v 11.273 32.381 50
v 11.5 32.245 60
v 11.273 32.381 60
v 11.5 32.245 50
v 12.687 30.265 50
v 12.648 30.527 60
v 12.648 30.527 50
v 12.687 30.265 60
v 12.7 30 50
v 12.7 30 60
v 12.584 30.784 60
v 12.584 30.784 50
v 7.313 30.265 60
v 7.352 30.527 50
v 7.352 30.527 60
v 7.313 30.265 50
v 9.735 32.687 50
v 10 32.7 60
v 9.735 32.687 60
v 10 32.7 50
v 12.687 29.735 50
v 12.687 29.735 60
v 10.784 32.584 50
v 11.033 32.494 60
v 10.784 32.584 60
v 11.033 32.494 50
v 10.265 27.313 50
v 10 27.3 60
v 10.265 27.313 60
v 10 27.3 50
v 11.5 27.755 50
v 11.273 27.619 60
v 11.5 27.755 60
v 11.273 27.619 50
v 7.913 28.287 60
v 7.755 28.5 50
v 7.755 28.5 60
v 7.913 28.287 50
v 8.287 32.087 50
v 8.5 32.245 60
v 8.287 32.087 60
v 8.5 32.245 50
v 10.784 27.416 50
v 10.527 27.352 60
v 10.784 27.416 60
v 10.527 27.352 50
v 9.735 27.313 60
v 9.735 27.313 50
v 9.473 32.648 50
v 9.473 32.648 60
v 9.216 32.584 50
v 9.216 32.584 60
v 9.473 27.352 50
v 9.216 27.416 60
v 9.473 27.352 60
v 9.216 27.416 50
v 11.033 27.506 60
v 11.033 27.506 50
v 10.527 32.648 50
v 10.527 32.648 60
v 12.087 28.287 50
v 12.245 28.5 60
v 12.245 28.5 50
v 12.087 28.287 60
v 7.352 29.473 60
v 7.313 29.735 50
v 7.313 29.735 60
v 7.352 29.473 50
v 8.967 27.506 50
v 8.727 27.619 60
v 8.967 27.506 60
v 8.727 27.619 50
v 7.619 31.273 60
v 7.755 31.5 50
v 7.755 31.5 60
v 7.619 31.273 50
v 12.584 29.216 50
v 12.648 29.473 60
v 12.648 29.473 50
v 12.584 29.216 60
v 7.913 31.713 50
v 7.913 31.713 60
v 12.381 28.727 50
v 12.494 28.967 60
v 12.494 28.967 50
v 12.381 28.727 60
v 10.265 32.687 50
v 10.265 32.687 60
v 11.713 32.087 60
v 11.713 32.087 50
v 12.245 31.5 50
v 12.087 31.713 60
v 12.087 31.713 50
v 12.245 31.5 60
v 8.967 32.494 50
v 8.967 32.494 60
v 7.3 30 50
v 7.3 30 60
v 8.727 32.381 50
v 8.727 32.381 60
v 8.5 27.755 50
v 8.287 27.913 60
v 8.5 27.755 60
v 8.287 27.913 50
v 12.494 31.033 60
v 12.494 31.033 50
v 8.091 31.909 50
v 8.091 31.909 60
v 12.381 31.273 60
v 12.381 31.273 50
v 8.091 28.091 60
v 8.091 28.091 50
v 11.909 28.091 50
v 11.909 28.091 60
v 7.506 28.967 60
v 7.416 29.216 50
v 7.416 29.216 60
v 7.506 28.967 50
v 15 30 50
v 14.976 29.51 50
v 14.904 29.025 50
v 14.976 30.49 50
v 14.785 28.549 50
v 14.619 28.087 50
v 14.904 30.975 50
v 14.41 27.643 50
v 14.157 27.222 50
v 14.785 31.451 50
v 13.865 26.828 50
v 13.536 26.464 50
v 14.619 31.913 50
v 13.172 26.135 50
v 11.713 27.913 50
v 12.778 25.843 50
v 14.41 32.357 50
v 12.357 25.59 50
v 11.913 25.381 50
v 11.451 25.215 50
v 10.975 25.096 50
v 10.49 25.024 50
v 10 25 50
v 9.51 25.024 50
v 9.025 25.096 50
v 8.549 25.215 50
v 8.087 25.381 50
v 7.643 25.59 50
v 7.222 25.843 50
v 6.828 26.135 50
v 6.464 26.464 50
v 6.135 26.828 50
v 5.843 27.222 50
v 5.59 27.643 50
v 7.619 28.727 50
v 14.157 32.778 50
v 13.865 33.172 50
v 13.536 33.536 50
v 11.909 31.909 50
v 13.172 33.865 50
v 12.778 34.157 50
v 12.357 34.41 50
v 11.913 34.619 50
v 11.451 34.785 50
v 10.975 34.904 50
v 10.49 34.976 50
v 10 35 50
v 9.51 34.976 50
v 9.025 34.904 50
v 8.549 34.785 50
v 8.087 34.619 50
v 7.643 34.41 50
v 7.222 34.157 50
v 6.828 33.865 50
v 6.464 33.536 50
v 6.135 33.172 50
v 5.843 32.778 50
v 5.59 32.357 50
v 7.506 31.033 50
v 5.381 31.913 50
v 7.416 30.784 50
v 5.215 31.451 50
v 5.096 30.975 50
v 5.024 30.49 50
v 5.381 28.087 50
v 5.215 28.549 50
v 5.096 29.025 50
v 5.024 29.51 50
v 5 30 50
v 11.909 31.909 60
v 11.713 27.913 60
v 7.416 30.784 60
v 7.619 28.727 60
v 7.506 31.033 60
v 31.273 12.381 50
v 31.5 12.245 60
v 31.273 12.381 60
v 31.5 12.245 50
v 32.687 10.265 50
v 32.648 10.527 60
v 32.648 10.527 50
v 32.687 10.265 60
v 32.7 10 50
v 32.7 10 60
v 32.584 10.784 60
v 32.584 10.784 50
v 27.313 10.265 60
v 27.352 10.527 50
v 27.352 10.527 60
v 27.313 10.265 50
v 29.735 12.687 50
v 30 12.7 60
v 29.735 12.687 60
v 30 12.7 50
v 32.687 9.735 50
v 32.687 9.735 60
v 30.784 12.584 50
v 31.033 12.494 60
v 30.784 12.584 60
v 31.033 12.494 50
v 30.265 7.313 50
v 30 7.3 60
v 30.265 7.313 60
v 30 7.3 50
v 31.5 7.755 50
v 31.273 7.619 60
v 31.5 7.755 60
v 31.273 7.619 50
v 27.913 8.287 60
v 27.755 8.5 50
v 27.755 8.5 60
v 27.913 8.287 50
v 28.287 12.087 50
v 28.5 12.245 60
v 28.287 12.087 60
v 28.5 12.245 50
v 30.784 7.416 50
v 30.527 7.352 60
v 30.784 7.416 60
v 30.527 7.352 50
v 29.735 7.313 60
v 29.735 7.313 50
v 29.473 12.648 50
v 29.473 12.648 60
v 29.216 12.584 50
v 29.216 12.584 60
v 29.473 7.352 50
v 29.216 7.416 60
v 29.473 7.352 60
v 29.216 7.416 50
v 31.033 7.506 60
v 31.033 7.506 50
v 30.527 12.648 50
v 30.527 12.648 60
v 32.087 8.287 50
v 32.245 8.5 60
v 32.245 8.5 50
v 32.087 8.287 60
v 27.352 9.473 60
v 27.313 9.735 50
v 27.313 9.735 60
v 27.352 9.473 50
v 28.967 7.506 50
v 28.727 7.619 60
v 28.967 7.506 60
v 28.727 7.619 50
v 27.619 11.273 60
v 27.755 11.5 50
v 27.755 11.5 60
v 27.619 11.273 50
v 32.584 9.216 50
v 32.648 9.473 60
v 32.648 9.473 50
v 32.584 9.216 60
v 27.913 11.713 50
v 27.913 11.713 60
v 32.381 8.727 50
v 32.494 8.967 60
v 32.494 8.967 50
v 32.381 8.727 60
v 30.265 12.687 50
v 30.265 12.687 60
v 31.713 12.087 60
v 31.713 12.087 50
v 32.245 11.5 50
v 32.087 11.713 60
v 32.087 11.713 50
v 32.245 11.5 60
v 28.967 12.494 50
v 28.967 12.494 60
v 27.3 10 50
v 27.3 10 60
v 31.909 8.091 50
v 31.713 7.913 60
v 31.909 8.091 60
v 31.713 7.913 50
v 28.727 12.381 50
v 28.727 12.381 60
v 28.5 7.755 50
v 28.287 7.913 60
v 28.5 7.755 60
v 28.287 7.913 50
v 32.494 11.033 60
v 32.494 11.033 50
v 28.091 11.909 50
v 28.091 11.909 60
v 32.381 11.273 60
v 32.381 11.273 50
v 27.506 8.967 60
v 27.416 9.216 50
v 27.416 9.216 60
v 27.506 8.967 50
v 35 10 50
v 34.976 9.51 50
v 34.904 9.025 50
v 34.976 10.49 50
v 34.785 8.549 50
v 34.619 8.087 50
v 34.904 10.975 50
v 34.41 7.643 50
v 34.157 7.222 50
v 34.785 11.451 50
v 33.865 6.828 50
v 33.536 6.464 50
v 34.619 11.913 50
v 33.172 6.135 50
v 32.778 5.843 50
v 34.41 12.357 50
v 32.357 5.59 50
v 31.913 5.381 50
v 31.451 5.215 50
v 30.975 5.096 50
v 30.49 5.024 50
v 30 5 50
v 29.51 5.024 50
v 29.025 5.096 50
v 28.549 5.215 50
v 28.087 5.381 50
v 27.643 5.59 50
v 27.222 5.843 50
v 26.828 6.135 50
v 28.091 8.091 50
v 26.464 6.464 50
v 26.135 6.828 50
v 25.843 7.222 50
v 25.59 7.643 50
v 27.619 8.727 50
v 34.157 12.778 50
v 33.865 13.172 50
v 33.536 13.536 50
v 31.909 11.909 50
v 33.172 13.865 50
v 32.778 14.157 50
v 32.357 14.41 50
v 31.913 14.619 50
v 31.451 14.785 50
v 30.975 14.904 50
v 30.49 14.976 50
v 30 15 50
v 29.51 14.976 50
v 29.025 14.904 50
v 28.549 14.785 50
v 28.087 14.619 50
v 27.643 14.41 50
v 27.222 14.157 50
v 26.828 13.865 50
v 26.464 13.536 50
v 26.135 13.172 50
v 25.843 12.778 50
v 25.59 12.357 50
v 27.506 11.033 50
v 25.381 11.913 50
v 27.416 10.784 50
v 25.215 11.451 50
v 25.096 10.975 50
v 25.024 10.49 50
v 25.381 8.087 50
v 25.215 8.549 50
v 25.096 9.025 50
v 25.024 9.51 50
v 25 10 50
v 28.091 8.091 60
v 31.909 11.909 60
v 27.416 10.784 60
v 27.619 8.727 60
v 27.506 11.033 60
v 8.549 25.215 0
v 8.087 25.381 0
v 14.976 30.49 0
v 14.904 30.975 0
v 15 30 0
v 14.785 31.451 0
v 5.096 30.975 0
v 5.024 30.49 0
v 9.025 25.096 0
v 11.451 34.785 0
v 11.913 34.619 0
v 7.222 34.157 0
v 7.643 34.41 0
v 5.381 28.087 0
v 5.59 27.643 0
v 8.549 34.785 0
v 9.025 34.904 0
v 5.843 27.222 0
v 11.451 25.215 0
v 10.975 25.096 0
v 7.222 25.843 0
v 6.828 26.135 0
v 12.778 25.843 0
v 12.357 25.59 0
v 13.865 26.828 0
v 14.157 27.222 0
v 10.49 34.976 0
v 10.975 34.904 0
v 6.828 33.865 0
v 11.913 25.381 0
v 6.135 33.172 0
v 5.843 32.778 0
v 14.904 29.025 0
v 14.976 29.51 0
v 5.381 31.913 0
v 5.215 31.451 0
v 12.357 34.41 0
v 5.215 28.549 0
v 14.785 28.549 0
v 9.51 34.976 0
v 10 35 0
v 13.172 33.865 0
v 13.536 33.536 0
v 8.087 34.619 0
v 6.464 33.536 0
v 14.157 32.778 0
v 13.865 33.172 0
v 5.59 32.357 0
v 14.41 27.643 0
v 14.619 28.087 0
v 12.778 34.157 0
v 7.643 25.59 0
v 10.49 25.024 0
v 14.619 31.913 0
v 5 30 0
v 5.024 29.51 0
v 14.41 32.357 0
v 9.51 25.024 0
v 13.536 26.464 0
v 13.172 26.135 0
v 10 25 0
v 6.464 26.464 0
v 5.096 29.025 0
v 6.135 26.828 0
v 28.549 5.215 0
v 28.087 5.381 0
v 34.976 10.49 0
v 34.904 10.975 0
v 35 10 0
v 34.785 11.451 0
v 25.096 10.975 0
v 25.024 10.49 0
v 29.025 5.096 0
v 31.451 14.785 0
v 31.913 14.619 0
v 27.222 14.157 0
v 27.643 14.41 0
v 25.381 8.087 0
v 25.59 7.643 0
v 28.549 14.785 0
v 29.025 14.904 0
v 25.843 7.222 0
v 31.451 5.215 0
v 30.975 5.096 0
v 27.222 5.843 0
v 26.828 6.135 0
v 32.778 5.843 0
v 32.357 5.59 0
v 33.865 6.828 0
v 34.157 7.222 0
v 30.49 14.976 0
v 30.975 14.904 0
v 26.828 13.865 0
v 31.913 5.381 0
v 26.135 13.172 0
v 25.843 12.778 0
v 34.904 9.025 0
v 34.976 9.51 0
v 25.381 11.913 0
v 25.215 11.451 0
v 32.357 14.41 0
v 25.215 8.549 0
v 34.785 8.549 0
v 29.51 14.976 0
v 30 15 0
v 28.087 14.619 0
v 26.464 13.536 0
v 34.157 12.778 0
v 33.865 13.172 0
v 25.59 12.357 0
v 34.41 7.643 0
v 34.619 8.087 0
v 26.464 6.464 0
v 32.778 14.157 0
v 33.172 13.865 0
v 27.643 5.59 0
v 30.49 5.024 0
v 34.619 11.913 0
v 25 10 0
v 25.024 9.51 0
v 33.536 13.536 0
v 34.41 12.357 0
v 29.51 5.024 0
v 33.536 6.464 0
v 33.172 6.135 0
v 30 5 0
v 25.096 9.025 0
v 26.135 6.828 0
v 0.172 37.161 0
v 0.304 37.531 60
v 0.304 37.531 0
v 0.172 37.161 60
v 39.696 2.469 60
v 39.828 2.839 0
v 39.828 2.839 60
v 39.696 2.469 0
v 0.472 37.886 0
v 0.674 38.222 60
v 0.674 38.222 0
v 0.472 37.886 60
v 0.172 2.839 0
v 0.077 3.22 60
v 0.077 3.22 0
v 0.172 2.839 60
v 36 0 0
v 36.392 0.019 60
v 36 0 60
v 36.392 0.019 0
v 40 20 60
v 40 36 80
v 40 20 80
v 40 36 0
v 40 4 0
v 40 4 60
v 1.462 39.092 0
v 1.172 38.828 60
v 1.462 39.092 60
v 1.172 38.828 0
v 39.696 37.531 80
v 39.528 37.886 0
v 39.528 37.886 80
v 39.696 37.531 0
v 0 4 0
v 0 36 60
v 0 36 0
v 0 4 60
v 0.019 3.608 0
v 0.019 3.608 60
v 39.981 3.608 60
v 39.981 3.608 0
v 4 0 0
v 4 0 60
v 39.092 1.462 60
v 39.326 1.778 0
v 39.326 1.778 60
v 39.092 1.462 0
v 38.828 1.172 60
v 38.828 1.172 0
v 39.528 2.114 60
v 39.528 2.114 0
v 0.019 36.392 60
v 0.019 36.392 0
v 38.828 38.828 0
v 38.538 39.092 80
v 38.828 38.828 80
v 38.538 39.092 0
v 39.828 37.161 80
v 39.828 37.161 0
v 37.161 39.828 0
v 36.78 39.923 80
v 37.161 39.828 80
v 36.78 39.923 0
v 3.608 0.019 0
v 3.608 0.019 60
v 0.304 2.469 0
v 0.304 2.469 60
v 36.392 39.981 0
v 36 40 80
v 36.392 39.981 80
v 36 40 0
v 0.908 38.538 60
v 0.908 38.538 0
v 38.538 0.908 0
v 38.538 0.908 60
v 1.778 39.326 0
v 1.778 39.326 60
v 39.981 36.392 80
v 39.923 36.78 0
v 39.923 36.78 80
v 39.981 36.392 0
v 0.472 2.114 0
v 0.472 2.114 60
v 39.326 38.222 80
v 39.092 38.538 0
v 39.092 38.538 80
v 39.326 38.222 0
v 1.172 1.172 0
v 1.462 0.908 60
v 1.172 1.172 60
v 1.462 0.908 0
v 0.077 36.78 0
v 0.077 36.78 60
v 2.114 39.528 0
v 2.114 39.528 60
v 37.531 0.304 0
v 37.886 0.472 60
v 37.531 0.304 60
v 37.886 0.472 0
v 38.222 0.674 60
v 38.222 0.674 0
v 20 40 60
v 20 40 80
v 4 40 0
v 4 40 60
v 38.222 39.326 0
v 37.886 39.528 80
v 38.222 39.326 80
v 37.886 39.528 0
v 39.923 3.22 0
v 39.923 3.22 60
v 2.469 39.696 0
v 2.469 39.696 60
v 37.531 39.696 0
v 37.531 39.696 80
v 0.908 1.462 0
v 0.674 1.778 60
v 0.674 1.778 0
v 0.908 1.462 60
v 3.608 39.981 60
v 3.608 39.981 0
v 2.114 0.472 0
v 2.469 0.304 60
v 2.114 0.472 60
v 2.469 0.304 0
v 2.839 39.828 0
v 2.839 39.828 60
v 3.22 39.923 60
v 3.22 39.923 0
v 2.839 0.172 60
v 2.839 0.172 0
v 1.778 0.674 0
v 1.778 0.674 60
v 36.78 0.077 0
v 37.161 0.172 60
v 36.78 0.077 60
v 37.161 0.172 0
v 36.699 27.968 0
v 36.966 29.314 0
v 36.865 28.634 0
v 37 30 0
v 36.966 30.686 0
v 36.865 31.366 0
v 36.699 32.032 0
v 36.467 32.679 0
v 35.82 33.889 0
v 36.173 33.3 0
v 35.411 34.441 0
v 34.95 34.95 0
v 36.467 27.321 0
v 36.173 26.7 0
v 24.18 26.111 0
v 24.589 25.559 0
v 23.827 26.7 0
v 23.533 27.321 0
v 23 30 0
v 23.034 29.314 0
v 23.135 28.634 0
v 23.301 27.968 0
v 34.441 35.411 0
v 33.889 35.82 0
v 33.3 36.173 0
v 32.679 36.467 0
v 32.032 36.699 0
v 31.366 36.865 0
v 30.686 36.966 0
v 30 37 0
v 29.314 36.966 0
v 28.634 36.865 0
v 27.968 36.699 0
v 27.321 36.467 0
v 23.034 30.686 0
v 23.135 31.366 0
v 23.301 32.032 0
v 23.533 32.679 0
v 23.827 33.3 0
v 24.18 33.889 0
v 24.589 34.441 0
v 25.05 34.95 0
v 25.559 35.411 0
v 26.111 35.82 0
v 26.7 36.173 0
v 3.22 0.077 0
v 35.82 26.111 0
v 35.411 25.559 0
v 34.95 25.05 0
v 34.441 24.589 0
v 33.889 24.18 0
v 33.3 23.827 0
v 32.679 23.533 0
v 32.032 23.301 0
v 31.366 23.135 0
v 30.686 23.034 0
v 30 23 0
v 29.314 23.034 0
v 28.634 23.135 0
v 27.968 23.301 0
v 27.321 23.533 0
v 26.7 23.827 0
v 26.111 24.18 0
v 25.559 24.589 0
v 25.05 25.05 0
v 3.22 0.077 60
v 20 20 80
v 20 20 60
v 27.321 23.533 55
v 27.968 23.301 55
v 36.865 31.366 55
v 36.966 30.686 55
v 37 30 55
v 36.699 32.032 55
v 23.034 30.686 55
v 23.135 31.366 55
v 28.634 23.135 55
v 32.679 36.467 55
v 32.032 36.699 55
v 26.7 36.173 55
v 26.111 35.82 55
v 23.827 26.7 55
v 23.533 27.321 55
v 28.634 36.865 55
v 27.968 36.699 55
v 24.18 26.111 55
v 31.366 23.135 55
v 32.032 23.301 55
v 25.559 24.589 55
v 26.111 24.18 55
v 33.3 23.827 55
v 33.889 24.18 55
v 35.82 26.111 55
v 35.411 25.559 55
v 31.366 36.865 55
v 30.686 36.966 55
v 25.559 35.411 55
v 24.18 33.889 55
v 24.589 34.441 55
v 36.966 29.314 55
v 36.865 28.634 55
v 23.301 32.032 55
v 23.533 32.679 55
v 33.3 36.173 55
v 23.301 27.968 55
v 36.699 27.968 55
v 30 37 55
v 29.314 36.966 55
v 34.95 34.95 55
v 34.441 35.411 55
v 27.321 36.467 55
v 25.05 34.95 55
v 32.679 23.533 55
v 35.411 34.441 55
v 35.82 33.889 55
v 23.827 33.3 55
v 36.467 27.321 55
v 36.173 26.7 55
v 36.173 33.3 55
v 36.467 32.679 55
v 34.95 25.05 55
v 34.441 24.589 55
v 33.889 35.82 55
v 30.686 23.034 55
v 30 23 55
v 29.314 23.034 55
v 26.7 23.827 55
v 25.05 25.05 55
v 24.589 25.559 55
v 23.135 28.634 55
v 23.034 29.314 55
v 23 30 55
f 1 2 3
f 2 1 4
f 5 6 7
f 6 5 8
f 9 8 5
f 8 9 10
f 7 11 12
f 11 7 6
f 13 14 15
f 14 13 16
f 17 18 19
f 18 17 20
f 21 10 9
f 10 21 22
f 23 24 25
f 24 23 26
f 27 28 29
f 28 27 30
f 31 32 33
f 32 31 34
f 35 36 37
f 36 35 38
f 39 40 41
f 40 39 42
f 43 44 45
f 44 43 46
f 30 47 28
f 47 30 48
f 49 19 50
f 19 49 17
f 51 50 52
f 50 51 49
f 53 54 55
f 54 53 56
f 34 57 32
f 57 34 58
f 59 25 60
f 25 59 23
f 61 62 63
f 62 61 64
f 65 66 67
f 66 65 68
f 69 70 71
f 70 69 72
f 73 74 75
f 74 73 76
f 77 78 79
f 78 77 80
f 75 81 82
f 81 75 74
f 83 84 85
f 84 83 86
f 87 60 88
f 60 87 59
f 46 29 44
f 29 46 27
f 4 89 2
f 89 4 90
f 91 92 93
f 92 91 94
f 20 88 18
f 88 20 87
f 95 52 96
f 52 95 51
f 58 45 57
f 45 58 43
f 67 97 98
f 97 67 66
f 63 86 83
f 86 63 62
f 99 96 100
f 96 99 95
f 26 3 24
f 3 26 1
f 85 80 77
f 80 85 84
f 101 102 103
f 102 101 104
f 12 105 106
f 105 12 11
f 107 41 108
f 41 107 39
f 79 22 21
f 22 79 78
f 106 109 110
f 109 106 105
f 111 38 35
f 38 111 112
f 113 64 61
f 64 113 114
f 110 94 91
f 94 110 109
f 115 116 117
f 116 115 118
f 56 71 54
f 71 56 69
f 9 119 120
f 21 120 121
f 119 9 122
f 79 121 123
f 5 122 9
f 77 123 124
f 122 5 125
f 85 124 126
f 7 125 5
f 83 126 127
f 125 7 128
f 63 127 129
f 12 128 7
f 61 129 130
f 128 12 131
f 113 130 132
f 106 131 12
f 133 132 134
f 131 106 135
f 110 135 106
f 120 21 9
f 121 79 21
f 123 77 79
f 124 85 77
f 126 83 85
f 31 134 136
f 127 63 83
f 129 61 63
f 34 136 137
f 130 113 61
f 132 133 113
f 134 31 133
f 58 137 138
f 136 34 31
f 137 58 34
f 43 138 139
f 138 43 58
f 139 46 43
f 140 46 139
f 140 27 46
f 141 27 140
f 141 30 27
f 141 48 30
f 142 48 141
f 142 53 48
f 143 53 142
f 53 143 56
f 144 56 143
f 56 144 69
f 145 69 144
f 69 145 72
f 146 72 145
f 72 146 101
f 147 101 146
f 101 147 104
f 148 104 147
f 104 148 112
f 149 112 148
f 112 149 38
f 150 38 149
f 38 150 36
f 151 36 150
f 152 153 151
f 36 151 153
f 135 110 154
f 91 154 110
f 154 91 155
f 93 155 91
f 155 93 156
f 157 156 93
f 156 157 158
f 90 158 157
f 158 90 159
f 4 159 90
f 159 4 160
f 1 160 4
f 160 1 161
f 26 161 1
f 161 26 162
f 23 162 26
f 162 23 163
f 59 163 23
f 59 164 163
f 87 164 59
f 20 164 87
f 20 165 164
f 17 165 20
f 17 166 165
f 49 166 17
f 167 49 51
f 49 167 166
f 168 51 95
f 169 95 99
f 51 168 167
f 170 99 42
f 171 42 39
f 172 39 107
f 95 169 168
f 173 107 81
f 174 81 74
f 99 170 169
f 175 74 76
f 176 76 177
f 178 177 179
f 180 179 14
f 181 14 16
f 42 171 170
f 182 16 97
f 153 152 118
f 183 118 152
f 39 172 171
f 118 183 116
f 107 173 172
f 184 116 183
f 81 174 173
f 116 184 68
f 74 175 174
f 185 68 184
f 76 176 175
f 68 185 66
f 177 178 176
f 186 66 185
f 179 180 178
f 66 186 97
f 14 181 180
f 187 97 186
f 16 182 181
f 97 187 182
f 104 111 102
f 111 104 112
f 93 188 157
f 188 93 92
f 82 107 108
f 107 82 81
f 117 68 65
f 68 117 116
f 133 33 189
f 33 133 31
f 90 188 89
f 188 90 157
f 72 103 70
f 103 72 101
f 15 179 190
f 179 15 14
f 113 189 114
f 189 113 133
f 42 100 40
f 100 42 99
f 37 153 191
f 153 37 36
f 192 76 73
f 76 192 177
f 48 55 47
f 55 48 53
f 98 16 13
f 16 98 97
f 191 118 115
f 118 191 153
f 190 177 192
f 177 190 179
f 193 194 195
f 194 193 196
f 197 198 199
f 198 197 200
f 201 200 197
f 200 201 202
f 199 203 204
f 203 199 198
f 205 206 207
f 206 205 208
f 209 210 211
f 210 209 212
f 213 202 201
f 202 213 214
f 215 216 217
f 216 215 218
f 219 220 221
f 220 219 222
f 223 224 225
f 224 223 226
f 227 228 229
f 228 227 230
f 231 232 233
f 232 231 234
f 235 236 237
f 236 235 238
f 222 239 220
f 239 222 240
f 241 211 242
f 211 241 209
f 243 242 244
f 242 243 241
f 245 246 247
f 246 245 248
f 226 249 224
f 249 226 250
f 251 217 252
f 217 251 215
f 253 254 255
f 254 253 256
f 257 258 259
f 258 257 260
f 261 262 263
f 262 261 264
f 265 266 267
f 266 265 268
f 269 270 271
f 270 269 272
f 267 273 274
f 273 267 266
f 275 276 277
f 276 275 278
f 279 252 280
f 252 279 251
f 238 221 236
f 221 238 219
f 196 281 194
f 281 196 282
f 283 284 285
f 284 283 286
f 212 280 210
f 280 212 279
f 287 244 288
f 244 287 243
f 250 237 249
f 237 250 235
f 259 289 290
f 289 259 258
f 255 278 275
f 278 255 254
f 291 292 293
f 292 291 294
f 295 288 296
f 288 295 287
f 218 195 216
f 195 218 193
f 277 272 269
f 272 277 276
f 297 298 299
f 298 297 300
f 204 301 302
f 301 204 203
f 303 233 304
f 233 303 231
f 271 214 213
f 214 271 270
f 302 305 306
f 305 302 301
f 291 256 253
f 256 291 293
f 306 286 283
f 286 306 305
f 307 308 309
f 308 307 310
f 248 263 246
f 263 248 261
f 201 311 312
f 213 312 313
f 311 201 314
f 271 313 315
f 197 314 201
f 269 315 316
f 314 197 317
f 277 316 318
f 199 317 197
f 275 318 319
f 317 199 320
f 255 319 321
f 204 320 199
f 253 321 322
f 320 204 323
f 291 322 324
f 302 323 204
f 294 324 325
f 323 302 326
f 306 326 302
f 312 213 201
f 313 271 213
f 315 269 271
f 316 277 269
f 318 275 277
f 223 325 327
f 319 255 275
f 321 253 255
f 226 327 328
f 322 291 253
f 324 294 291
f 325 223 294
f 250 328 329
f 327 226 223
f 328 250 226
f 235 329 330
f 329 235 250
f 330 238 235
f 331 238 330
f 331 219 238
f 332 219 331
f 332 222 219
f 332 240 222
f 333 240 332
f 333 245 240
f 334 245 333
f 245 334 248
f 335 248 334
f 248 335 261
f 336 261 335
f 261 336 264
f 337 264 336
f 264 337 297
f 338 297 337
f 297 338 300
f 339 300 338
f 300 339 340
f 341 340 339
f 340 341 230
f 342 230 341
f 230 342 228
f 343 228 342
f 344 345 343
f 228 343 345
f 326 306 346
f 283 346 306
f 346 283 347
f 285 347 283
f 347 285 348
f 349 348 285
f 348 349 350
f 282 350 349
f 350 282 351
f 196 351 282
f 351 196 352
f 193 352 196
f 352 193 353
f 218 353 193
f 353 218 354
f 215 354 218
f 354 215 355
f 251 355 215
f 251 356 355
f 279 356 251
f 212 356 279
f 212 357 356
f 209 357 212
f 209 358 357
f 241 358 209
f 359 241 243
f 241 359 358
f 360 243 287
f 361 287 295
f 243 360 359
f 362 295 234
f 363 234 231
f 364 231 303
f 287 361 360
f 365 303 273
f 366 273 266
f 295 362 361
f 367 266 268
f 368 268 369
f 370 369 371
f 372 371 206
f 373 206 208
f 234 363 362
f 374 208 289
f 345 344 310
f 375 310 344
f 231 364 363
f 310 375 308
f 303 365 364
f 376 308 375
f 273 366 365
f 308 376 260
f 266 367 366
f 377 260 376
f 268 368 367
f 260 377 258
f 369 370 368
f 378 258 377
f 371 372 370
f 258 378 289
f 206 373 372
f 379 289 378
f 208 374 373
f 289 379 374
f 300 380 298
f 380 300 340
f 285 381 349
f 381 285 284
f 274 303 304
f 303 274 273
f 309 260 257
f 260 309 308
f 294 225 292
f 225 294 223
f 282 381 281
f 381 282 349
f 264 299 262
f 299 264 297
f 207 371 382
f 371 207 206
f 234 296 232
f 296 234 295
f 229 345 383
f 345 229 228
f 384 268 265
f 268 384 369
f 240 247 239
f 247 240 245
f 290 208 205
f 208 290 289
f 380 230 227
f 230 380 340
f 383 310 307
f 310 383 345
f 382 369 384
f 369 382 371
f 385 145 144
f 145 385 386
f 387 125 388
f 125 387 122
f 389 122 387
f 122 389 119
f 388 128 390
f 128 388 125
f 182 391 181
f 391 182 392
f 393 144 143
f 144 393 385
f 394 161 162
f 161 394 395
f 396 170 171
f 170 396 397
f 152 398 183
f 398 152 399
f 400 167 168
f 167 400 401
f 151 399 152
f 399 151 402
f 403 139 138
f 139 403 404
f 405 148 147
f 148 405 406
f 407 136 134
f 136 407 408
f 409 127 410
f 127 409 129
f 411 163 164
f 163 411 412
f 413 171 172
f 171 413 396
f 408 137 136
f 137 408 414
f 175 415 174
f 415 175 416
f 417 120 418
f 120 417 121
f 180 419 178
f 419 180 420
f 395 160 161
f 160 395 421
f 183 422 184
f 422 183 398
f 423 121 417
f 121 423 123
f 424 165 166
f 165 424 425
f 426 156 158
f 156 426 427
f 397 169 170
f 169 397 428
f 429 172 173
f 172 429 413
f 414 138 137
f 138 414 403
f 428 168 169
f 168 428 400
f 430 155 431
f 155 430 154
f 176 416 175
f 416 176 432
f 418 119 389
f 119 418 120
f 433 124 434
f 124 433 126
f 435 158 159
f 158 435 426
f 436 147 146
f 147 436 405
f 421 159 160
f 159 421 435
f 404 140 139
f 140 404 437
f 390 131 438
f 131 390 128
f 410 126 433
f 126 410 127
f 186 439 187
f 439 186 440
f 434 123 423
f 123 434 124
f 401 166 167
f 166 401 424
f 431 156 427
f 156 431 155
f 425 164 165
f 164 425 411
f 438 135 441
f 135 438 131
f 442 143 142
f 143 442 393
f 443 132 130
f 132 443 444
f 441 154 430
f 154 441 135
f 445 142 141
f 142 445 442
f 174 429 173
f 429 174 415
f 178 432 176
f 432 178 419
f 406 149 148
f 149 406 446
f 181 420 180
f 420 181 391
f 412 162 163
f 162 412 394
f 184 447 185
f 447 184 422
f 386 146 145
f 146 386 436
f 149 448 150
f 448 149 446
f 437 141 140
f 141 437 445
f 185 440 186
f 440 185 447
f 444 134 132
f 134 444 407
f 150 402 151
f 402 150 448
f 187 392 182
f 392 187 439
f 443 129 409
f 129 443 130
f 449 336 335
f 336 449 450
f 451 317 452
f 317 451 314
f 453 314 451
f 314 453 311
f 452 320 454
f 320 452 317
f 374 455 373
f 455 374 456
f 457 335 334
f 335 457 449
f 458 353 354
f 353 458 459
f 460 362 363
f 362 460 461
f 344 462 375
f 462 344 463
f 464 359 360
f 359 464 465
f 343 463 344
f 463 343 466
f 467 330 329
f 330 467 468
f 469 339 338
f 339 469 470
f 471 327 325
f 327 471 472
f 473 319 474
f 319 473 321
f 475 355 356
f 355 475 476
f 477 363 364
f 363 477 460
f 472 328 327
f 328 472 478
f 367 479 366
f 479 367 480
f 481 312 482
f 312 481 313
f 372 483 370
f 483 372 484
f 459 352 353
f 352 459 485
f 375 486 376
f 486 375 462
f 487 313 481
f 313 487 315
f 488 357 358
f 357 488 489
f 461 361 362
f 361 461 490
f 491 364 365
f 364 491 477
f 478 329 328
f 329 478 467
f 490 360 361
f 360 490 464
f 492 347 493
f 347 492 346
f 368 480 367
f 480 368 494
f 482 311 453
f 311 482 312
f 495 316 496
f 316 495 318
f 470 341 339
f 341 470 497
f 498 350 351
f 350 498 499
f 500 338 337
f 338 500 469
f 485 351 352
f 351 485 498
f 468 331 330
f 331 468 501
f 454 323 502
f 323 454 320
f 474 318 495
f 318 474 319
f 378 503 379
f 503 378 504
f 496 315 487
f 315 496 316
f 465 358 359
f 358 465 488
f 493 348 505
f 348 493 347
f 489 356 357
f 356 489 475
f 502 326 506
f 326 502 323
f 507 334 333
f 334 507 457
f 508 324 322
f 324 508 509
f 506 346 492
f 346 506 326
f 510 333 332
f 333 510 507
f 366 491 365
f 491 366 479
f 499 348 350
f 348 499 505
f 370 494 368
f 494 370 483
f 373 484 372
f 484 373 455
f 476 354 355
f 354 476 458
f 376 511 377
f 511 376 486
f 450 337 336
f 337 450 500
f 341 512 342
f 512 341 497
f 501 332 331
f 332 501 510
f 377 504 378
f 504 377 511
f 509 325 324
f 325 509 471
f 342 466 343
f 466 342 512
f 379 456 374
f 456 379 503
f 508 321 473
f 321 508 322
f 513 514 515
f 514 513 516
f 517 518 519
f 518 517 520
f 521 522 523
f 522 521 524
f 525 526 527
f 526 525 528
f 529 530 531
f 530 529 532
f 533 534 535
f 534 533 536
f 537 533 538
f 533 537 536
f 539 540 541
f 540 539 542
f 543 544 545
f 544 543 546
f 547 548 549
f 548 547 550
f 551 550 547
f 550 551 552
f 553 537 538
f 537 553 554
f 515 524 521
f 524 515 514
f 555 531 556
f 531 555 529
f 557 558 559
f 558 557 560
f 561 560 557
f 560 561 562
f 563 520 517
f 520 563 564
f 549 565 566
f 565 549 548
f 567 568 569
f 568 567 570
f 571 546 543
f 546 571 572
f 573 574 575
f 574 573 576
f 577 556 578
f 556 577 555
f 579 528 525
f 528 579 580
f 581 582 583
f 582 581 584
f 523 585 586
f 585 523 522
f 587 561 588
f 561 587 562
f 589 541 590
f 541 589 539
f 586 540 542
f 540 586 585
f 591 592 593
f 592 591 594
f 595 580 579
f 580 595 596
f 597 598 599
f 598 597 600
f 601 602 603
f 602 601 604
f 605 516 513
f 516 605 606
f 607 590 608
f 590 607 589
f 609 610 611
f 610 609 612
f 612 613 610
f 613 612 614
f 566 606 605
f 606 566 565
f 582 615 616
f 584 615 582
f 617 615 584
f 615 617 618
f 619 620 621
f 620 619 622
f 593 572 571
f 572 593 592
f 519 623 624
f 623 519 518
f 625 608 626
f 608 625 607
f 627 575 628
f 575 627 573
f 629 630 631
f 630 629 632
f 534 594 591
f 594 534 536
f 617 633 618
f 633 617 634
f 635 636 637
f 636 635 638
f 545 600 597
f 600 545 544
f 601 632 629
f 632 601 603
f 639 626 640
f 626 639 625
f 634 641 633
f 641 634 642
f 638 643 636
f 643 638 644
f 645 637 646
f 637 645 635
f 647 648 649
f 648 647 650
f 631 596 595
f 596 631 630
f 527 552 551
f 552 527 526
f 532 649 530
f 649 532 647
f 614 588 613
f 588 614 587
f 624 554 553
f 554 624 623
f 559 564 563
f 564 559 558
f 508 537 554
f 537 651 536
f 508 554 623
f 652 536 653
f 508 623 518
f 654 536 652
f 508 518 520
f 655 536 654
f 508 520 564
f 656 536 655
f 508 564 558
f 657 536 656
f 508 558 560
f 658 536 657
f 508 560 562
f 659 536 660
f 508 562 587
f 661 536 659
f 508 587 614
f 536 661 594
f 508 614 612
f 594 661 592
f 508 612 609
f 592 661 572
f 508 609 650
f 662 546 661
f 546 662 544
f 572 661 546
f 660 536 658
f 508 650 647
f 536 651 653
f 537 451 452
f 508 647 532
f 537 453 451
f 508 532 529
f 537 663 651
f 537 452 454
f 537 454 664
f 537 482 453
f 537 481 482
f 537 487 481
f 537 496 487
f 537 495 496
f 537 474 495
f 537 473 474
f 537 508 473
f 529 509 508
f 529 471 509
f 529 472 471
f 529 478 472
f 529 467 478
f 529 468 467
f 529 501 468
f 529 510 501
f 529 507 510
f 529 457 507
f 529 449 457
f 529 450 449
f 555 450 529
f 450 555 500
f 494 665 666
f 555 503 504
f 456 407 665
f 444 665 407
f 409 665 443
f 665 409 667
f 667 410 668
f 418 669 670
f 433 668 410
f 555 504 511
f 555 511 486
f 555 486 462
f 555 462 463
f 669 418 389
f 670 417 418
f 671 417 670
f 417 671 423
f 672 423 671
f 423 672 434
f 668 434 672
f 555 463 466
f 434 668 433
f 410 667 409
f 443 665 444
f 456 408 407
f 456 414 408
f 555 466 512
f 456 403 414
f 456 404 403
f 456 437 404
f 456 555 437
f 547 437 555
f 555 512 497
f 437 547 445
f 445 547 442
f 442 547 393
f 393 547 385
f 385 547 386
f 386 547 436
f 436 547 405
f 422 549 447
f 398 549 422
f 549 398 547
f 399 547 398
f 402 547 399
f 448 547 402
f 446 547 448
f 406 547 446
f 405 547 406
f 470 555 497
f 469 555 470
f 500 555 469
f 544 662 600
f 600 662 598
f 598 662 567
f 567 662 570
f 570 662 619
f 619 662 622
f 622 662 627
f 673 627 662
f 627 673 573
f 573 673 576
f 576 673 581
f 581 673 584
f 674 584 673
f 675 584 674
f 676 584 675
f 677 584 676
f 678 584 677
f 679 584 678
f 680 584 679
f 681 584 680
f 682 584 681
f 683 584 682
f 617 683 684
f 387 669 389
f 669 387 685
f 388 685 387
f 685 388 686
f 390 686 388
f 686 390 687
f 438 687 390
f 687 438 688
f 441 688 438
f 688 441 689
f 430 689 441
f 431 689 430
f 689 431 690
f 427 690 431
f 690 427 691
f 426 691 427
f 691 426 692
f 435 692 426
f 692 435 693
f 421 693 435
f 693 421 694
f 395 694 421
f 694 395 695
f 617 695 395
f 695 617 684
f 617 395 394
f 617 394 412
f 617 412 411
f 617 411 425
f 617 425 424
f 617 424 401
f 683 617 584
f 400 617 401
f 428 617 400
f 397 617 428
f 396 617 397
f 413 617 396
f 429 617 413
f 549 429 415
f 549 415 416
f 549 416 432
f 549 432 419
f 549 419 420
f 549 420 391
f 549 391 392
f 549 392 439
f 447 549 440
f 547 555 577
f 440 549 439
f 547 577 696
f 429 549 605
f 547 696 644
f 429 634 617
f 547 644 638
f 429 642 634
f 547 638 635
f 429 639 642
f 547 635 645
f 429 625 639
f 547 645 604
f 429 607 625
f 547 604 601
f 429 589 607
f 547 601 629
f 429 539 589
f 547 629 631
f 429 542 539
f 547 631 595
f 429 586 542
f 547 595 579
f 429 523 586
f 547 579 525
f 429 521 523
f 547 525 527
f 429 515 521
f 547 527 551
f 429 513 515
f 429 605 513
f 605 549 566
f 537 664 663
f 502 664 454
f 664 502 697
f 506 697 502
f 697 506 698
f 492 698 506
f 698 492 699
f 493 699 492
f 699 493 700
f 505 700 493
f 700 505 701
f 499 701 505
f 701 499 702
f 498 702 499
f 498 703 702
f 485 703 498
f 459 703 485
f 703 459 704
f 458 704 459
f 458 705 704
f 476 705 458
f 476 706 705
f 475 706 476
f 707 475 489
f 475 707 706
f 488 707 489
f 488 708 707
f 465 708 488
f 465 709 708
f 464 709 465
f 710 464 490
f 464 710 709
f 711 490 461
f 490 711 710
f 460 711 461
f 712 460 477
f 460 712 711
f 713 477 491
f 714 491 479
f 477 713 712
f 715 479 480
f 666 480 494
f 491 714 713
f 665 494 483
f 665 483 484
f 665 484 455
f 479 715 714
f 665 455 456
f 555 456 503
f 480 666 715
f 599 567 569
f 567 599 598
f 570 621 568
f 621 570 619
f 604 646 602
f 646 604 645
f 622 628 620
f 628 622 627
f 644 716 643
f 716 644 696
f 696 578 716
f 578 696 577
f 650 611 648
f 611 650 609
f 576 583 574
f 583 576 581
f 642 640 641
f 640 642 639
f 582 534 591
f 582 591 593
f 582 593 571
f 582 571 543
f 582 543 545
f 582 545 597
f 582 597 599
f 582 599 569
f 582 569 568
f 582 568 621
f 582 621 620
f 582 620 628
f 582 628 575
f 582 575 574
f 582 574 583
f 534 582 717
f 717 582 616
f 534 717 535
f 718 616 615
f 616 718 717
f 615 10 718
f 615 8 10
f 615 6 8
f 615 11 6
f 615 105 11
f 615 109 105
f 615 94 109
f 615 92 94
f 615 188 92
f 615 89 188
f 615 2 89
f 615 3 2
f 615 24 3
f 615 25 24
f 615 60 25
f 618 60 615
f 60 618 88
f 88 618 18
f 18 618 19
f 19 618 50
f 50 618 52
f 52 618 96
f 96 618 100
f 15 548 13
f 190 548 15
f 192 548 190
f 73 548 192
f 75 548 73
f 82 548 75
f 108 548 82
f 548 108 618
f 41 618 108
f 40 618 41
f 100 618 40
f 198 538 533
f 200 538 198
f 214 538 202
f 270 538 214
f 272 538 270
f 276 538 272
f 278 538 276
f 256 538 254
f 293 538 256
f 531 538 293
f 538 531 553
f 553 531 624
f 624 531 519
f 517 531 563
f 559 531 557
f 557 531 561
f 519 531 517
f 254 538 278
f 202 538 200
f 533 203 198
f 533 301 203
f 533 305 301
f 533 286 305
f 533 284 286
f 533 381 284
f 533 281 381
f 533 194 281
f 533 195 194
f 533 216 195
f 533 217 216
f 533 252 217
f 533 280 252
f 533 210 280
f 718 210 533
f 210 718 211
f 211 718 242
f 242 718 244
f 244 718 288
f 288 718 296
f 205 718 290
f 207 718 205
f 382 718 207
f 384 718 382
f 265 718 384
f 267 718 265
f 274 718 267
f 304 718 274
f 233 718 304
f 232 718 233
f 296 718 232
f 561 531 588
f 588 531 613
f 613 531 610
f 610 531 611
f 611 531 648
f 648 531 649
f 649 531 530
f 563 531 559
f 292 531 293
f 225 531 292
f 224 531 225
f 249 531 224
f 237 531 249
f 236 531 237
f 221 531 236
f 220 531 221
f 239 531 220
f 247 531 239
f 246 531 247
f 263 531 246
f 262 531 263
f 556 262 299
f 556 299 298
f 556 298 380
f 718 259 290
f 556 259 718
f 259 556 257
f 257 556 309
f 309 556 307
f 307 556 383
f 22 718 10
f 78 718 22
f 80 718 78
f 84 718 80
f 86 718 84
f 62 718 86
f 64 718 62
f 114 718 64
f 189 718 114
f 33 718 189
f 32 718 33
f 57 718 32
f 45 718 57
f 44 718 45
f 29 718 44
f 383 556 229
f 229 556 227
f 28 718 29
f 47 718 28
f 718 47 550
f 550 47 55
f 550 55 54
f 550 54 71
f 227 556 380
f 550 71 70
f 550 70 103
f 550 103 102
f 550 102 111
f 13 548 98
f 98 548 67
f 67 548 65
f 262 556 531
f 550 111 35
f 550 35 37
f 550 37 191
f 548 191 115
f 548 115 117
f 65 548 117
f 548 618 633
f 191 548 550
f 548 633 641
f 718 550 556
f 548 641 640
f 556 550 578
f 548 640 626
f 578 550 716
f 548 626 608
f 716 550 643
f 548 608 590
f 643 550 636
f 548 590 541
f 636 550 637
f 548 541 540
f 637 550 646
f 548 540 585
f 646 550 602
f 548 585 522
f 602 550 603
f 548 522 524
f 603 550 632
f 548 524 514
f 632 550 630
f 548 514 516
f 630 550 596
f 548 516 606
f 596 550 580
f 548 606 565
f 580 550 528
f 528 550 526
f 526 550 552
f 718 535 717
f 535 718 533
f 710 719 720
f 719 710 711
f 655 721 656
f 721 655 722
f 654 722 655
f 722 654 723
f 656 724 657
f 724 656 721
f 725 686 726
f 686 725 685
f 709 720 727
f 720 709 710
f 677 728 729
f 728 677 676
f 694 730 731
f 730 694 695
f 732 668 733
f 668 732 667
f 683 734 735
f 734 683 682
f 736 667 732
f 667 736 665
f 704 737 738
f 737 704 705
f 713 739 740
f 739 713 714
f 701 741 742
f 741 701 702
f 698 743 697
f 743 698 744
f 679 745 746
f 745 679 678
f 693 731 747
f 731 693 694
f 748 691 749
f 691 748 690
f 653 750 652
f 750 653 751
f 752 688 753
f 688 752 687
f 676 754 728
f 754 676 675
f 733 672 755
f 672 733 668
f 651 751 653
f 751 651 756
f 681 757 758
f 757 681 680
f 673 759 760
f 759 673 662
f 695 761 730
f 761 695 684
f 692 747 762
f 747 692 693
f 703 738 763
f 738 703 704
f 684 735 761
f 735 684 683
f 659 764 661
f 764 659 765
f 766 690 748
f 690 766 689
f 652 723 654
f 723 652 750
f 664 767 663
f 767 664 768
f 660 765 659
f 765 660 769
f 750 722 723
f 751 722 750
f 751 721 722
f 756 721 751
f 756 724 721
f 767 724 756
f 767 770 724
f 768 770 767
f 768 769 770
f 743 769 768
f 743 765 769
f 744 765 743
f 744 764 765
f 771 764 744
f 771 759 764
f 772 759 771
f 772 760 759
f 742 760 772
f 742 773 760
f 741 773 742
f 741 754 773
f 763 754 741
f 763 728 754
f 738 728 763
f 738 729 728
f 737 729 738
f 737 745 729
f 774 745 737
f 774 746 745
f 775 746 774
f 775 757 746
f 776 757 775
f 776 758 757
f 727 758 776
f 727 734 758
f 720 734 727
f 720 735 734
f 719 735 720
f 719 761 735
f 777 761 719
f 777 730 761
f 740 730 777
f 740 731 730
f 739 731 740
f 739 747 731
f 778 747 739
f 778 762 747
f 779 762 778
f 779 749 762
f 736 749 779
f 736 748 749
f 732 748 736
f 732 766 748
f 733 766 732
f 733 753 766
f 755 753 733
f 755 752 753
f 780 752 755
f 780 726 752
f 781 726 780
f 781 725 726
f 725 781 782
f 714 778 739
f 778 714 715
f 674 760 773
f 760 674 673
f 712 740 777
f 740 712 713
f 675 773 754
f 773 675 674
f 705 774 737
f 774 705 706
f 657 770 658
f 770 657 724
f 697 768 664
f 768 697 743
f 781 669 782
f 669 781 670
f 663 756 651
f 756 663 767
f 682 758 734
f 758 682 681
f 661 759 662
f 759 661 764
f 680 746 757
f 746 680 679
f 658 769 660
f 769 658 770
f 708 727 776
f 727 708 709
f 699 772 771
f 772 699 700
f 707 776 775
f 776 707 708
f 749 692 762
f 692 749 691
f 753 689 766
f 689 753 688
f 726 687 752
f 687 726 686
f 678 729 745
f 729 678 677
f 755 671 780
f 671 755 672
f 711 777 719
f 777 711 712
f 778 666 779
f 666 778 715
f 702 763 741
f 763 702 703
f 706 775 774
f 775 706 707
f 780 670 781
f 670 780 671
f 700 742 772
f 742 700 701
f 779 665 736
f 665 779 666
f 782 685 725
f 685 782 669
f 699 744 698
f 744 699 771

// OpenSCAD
// file: common.scad
// OpenRook: shared dimensions for every printed part. Change a number here and re-run
// ../render.sh. Keep SQUARE in step with DEFAULT_SQUARE_MM in firmware/OpenRook/config.h.

$fn = 64;

// ---------------------------------------------------------------- board
SQUARE = 40;            // square pitch (mm)
TILE_SQUARES = 4;       // a playing tile is 4x4 squares; four tiles make the board
TILE_T = 3.4;           // tile thickness
INLAY_D = 0.6;          // dark-square recess depth for a second colour (0 = flat tile)
REED_L = 15;            // reed switch glass length (2x14 mm glass + margin)
REED_W = 2.6;           // groove width for glass body
GROOVE_D = 2.2;         // depth of wire/switch grooves on the tile underside
WIRE_W = 1.6;           // groove width for legs and wires
DIODE_L = 4.5;          // 1N4148 body (DO-35)
DIODE_W = 2.2;

// ---------------------------------------------------------------- pieces
PIECE_BASE = 20;        // base diameter: must stay <= SQUARE/2 so pieces pass between others
PIECE_MAG_D = 10.3;     // pocket for a 10x3 mm N52 disc magnet (+ clearance)
PIECE_MAG_H = 3.2;
FELT = 0;               // stick 0.5-1 mm felt under each piece; no geometry needed

// ---------------------------------------------------------------- hardware
EXTRUSION = 20;         // 2020 aluminium profile
M5 = 5.4;               // M5 clearance
M3 = 3.3;               // M3 clearance
M3_NUT = 6.4;           // across flats + clearance
ROD = 8;                // smooth rods
ROD_FIT = 8.15;
LM8UU_D = 15.2;
LM8UU_L = 24;
F623_D = 10.4;          // F623ZZ flanged bearing: 10 mm OD, 4 mm wide, 11.5 mm flange
F623_W = 4;
F623_FLANGE = 11.6;
NEMA = 42.3;
NEMA_HOLES = 31;
NEMA_BOSS = 22.5;
BELT_W = 6;             // GT2 6 mm
SERVO_W = 12.6;         // SG90 / MG90S body
SERVO_L = 23.2;
SERVO_TAB = 32.5;       // tab-to-tab length
CARRIAGE_MAG_D = 15.3;  // 15x4 mm N52 magnet on the lifting arm
CARRIAGE_MAG_H = 4.2;

// ---------------------------------------------------------------- frame
// Inside the frame: magnet travel 425 x 335 mm plus the gantry around it.
FRAME_X = 560;          // outer size of the 2020 rectangle (front/back extrusions)
FRAME_Y = 480;          // outer size (side extrusions are FRAME_Y - 40 long)
ROD_SPACING_X = 40;     // the two X rods, centre to centre

module rounded_box(size, r = 2) {
  hull() for (x = [r, size[0] - r], y = [r, size[1] - r]) translate([x, y, 0]) cylinder(r = r, h = size[2]);
}

module m3_nut_trap(h = 3) { cylinder(d = M3_NUT / cos(30), h = h, $fn = 6); }
// main file
// Corner foot for the 2020 frame (print 4). Raises the frame so the gantry under the board
// clears the table. Slides onto the end of an extrusion corner and bolts with M5 + T-nut.
include <common.scad>
H = 60; // the gantry hangs about 45 mm below the top of the frame
difference() {
  union() {
    rounded_box([40, 40, H + 20], 4);
  }
  // Pocket for the corner where two extrusions meet (the frame sits on top of the legs).
  translate([-1, -1, H]) cube([EXTRUSION + 1, 41, 21]);
  translate([-1, -1, H]) cube([41, EXTRUSION + 1, 21]);
  translate([30, 30, -1]) cylinder(d = 14, h = H - 4); // lighten
  for (p = [[10, 30], [30, 10]]) translate([p[0], p[1], H - 10]) cylinder(d = M5, h = 12);
  for (p = [[10, 30], [30, 10]]) translate([p[0], p[1], -1]) cylinder(d = 10, h = H - 9);
}
